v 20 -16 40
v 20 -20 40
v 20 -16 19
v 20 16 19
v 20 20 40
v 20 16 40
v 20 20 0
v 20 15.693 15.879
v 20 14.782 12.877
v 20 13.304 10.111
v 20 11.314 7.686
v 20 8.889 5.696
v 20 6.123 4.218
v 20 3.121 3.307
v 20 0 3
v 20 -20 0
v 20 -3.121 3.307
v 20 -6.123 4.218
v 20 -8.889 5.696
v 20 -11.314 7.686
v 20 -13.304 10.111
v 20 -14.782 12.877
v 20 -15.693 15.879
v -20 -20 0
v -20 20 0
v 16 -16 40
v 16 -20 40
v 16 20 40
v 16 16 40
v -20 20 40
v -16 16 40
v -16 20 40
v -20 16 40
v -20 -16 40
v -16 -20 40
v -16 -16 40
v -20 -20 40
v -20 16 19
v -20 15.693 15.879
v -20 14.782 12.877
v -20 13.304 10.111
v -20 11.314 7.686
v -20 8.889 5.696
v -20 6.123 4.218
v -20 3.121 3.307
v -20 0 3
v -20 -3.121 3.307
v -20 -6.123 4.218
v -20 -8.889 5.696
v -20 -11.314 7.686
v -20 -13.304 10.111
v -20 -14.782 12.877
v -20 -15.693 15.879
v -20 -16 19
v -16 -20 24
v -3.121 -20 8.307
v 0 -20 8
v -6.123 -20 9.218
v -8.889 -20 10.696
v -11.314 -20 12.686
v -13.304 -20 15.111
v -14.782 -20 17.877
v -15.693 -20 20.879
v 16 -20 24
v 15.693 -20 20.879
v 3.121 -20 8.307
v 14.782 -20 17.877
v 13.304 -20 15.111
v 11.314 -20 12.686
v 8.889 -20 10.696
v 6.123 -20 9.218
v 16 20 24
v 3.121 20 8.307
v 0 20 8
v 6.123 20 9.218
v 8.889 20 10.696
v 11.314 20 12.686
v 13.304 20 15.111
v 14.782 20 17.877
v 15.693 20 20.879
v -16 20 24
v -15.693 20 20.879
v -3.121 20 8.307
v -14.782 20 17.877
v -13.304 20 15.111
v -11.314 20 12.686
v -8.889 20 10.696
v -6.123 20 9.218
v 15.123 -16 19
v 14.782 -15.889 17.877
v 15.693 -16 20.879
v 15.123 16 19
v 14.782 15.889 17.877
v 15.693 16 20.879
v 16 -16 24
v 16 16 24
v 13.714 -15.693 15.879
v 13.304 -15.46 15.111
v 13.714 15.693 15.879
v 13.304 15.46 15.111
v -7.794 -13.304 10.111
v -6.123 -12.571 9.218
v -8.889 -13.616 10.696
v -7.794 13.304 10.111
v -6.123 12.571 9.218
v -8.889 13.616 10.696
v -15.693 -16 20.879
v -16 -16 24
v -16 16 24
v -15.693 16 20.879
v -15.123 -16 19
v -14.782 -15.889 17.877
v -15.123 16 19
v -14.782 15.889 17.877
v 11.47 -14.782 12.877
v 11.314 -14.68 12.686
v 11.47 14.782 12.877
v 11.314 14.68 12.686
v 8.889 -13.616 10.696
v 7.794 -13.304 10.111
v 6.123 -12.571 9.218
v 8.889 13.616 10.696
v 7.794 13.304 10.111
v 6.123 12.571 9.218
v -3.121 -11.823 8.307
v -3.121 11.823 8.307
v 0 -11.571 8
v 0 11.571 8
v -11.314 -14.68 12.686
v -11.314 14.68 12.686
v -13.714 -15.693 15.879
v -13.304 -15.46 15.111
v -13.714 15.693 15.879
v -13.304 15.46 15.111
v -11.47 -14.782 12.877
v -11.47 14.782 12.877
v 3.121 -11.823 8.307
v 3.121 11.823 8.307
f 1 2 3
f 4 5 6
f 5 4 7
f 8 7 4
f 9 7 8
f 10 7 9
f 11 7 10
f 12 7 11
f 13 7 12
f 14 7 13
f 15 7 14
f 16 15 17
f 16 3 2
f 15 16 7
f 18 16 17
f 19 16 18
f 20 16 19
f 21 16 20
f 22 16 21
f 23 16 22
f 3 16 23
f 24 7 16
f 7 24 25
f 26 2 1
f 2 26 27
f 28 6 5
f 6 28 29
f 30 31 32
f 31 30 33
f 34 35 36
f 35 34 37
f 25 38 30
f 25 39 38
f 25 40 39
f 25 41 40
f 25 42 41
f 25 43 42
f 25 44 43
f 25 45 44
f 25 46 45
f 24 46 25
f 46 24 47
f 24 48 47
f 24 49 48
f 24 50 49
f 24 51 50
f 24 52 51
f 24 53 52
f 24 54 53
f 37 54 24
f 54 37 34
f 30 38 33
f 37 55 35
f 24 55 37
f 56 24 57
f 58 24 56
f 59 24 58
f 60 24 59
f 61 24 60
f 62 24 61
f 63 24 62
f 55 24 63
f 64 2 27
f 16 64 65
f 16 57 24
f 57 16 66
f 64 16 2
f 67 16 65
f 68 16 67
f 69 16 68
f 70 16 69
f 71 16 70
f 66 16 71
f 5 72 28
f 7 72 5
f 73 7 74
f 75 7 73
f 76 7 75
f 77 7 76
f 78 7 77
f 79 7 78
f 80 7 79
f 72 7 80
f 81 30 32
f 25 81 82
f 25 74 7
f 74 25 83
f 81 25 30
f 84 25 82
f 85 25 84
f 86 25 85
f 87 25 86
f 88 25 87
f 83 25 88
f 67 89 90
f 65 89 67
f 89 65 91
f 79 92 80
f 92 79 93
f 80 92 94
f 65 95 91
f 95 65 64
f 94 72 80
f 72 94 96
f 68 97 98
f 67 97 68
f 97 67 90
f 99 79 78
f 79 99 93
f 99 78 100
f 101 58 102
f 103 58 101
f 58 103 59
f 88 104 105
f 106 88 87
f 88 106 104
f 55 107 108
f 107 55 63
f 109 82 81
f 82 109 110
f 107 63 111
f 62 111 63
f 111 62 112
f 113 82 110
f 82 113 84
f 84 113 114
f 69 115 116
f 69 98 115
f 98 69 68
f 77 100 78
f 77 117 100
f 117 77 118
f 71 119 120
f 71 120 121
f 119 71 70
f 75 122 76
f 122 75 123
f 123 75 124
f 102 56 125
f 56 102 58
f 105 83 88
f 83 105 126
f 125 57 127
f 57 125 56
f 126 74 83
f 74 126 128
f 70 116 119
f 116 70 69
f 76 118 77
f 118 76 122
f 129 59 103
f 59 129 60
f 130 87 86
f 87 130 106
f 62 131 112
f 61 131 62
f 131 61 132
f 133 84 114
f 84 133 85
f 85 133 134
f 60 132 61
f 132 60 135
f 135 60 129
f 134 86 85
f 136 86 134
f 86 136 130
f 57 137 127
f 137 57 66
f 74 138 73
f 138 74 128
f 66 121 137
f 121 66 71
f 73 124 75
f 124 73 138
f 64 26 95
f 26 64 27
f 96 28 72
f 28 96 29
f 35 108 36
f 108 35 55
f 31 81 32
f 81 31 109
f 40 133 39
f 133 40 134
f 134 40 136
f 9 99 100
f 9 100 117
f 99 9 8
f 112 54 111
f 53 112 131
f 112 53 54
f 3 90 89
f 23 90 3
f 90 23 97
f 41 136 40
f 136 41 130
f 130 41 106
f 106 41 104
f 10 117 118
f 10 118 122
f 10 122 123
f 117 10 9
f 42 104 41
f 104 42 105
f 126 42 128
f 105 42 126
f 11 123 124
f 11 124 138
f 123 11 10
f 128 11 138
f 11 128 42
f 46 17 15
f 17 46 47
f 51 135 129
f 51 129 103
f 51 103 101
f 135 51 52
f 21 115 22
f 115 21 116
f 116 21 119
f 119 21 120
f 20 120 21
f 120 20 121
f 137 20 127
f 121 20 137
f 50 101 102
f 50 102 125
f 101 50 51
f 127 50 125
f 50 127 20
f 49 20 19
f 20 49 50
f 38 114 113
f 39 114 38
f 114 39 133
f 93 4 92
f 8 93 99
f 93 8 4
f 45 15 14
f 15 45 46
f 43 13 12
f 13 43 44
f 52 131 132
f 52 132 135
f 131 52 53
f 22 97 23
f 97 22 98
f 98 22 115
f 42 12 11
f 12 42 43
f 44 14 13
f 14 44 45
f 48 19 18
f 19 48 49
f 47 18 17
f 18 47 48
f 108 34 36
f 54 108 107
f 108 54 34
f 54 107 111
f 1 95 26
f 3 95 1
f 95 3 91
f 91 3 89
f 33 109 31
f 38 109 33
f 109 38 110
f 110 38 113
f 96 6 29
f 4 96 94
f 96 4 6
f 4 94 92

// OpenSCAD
/*

  ttt_platform.scad

  (c) olikraus@gmail.com

  This work is licensed under the Creative Commons Attribution-NonCommercial-ShareAlike 4.0 International License. 
  To view a copy of this license, visit http://creativecommons.org/licenses/by-nc-sa/4.0/.

  platfrom grid length
  upside down for better 3d printing
*/
include <train_tube_track.scad>;

translate([0,0,height+outer_height/2])
rotate([180,0,0])
platform(is_base=false, side_fix = -1);
